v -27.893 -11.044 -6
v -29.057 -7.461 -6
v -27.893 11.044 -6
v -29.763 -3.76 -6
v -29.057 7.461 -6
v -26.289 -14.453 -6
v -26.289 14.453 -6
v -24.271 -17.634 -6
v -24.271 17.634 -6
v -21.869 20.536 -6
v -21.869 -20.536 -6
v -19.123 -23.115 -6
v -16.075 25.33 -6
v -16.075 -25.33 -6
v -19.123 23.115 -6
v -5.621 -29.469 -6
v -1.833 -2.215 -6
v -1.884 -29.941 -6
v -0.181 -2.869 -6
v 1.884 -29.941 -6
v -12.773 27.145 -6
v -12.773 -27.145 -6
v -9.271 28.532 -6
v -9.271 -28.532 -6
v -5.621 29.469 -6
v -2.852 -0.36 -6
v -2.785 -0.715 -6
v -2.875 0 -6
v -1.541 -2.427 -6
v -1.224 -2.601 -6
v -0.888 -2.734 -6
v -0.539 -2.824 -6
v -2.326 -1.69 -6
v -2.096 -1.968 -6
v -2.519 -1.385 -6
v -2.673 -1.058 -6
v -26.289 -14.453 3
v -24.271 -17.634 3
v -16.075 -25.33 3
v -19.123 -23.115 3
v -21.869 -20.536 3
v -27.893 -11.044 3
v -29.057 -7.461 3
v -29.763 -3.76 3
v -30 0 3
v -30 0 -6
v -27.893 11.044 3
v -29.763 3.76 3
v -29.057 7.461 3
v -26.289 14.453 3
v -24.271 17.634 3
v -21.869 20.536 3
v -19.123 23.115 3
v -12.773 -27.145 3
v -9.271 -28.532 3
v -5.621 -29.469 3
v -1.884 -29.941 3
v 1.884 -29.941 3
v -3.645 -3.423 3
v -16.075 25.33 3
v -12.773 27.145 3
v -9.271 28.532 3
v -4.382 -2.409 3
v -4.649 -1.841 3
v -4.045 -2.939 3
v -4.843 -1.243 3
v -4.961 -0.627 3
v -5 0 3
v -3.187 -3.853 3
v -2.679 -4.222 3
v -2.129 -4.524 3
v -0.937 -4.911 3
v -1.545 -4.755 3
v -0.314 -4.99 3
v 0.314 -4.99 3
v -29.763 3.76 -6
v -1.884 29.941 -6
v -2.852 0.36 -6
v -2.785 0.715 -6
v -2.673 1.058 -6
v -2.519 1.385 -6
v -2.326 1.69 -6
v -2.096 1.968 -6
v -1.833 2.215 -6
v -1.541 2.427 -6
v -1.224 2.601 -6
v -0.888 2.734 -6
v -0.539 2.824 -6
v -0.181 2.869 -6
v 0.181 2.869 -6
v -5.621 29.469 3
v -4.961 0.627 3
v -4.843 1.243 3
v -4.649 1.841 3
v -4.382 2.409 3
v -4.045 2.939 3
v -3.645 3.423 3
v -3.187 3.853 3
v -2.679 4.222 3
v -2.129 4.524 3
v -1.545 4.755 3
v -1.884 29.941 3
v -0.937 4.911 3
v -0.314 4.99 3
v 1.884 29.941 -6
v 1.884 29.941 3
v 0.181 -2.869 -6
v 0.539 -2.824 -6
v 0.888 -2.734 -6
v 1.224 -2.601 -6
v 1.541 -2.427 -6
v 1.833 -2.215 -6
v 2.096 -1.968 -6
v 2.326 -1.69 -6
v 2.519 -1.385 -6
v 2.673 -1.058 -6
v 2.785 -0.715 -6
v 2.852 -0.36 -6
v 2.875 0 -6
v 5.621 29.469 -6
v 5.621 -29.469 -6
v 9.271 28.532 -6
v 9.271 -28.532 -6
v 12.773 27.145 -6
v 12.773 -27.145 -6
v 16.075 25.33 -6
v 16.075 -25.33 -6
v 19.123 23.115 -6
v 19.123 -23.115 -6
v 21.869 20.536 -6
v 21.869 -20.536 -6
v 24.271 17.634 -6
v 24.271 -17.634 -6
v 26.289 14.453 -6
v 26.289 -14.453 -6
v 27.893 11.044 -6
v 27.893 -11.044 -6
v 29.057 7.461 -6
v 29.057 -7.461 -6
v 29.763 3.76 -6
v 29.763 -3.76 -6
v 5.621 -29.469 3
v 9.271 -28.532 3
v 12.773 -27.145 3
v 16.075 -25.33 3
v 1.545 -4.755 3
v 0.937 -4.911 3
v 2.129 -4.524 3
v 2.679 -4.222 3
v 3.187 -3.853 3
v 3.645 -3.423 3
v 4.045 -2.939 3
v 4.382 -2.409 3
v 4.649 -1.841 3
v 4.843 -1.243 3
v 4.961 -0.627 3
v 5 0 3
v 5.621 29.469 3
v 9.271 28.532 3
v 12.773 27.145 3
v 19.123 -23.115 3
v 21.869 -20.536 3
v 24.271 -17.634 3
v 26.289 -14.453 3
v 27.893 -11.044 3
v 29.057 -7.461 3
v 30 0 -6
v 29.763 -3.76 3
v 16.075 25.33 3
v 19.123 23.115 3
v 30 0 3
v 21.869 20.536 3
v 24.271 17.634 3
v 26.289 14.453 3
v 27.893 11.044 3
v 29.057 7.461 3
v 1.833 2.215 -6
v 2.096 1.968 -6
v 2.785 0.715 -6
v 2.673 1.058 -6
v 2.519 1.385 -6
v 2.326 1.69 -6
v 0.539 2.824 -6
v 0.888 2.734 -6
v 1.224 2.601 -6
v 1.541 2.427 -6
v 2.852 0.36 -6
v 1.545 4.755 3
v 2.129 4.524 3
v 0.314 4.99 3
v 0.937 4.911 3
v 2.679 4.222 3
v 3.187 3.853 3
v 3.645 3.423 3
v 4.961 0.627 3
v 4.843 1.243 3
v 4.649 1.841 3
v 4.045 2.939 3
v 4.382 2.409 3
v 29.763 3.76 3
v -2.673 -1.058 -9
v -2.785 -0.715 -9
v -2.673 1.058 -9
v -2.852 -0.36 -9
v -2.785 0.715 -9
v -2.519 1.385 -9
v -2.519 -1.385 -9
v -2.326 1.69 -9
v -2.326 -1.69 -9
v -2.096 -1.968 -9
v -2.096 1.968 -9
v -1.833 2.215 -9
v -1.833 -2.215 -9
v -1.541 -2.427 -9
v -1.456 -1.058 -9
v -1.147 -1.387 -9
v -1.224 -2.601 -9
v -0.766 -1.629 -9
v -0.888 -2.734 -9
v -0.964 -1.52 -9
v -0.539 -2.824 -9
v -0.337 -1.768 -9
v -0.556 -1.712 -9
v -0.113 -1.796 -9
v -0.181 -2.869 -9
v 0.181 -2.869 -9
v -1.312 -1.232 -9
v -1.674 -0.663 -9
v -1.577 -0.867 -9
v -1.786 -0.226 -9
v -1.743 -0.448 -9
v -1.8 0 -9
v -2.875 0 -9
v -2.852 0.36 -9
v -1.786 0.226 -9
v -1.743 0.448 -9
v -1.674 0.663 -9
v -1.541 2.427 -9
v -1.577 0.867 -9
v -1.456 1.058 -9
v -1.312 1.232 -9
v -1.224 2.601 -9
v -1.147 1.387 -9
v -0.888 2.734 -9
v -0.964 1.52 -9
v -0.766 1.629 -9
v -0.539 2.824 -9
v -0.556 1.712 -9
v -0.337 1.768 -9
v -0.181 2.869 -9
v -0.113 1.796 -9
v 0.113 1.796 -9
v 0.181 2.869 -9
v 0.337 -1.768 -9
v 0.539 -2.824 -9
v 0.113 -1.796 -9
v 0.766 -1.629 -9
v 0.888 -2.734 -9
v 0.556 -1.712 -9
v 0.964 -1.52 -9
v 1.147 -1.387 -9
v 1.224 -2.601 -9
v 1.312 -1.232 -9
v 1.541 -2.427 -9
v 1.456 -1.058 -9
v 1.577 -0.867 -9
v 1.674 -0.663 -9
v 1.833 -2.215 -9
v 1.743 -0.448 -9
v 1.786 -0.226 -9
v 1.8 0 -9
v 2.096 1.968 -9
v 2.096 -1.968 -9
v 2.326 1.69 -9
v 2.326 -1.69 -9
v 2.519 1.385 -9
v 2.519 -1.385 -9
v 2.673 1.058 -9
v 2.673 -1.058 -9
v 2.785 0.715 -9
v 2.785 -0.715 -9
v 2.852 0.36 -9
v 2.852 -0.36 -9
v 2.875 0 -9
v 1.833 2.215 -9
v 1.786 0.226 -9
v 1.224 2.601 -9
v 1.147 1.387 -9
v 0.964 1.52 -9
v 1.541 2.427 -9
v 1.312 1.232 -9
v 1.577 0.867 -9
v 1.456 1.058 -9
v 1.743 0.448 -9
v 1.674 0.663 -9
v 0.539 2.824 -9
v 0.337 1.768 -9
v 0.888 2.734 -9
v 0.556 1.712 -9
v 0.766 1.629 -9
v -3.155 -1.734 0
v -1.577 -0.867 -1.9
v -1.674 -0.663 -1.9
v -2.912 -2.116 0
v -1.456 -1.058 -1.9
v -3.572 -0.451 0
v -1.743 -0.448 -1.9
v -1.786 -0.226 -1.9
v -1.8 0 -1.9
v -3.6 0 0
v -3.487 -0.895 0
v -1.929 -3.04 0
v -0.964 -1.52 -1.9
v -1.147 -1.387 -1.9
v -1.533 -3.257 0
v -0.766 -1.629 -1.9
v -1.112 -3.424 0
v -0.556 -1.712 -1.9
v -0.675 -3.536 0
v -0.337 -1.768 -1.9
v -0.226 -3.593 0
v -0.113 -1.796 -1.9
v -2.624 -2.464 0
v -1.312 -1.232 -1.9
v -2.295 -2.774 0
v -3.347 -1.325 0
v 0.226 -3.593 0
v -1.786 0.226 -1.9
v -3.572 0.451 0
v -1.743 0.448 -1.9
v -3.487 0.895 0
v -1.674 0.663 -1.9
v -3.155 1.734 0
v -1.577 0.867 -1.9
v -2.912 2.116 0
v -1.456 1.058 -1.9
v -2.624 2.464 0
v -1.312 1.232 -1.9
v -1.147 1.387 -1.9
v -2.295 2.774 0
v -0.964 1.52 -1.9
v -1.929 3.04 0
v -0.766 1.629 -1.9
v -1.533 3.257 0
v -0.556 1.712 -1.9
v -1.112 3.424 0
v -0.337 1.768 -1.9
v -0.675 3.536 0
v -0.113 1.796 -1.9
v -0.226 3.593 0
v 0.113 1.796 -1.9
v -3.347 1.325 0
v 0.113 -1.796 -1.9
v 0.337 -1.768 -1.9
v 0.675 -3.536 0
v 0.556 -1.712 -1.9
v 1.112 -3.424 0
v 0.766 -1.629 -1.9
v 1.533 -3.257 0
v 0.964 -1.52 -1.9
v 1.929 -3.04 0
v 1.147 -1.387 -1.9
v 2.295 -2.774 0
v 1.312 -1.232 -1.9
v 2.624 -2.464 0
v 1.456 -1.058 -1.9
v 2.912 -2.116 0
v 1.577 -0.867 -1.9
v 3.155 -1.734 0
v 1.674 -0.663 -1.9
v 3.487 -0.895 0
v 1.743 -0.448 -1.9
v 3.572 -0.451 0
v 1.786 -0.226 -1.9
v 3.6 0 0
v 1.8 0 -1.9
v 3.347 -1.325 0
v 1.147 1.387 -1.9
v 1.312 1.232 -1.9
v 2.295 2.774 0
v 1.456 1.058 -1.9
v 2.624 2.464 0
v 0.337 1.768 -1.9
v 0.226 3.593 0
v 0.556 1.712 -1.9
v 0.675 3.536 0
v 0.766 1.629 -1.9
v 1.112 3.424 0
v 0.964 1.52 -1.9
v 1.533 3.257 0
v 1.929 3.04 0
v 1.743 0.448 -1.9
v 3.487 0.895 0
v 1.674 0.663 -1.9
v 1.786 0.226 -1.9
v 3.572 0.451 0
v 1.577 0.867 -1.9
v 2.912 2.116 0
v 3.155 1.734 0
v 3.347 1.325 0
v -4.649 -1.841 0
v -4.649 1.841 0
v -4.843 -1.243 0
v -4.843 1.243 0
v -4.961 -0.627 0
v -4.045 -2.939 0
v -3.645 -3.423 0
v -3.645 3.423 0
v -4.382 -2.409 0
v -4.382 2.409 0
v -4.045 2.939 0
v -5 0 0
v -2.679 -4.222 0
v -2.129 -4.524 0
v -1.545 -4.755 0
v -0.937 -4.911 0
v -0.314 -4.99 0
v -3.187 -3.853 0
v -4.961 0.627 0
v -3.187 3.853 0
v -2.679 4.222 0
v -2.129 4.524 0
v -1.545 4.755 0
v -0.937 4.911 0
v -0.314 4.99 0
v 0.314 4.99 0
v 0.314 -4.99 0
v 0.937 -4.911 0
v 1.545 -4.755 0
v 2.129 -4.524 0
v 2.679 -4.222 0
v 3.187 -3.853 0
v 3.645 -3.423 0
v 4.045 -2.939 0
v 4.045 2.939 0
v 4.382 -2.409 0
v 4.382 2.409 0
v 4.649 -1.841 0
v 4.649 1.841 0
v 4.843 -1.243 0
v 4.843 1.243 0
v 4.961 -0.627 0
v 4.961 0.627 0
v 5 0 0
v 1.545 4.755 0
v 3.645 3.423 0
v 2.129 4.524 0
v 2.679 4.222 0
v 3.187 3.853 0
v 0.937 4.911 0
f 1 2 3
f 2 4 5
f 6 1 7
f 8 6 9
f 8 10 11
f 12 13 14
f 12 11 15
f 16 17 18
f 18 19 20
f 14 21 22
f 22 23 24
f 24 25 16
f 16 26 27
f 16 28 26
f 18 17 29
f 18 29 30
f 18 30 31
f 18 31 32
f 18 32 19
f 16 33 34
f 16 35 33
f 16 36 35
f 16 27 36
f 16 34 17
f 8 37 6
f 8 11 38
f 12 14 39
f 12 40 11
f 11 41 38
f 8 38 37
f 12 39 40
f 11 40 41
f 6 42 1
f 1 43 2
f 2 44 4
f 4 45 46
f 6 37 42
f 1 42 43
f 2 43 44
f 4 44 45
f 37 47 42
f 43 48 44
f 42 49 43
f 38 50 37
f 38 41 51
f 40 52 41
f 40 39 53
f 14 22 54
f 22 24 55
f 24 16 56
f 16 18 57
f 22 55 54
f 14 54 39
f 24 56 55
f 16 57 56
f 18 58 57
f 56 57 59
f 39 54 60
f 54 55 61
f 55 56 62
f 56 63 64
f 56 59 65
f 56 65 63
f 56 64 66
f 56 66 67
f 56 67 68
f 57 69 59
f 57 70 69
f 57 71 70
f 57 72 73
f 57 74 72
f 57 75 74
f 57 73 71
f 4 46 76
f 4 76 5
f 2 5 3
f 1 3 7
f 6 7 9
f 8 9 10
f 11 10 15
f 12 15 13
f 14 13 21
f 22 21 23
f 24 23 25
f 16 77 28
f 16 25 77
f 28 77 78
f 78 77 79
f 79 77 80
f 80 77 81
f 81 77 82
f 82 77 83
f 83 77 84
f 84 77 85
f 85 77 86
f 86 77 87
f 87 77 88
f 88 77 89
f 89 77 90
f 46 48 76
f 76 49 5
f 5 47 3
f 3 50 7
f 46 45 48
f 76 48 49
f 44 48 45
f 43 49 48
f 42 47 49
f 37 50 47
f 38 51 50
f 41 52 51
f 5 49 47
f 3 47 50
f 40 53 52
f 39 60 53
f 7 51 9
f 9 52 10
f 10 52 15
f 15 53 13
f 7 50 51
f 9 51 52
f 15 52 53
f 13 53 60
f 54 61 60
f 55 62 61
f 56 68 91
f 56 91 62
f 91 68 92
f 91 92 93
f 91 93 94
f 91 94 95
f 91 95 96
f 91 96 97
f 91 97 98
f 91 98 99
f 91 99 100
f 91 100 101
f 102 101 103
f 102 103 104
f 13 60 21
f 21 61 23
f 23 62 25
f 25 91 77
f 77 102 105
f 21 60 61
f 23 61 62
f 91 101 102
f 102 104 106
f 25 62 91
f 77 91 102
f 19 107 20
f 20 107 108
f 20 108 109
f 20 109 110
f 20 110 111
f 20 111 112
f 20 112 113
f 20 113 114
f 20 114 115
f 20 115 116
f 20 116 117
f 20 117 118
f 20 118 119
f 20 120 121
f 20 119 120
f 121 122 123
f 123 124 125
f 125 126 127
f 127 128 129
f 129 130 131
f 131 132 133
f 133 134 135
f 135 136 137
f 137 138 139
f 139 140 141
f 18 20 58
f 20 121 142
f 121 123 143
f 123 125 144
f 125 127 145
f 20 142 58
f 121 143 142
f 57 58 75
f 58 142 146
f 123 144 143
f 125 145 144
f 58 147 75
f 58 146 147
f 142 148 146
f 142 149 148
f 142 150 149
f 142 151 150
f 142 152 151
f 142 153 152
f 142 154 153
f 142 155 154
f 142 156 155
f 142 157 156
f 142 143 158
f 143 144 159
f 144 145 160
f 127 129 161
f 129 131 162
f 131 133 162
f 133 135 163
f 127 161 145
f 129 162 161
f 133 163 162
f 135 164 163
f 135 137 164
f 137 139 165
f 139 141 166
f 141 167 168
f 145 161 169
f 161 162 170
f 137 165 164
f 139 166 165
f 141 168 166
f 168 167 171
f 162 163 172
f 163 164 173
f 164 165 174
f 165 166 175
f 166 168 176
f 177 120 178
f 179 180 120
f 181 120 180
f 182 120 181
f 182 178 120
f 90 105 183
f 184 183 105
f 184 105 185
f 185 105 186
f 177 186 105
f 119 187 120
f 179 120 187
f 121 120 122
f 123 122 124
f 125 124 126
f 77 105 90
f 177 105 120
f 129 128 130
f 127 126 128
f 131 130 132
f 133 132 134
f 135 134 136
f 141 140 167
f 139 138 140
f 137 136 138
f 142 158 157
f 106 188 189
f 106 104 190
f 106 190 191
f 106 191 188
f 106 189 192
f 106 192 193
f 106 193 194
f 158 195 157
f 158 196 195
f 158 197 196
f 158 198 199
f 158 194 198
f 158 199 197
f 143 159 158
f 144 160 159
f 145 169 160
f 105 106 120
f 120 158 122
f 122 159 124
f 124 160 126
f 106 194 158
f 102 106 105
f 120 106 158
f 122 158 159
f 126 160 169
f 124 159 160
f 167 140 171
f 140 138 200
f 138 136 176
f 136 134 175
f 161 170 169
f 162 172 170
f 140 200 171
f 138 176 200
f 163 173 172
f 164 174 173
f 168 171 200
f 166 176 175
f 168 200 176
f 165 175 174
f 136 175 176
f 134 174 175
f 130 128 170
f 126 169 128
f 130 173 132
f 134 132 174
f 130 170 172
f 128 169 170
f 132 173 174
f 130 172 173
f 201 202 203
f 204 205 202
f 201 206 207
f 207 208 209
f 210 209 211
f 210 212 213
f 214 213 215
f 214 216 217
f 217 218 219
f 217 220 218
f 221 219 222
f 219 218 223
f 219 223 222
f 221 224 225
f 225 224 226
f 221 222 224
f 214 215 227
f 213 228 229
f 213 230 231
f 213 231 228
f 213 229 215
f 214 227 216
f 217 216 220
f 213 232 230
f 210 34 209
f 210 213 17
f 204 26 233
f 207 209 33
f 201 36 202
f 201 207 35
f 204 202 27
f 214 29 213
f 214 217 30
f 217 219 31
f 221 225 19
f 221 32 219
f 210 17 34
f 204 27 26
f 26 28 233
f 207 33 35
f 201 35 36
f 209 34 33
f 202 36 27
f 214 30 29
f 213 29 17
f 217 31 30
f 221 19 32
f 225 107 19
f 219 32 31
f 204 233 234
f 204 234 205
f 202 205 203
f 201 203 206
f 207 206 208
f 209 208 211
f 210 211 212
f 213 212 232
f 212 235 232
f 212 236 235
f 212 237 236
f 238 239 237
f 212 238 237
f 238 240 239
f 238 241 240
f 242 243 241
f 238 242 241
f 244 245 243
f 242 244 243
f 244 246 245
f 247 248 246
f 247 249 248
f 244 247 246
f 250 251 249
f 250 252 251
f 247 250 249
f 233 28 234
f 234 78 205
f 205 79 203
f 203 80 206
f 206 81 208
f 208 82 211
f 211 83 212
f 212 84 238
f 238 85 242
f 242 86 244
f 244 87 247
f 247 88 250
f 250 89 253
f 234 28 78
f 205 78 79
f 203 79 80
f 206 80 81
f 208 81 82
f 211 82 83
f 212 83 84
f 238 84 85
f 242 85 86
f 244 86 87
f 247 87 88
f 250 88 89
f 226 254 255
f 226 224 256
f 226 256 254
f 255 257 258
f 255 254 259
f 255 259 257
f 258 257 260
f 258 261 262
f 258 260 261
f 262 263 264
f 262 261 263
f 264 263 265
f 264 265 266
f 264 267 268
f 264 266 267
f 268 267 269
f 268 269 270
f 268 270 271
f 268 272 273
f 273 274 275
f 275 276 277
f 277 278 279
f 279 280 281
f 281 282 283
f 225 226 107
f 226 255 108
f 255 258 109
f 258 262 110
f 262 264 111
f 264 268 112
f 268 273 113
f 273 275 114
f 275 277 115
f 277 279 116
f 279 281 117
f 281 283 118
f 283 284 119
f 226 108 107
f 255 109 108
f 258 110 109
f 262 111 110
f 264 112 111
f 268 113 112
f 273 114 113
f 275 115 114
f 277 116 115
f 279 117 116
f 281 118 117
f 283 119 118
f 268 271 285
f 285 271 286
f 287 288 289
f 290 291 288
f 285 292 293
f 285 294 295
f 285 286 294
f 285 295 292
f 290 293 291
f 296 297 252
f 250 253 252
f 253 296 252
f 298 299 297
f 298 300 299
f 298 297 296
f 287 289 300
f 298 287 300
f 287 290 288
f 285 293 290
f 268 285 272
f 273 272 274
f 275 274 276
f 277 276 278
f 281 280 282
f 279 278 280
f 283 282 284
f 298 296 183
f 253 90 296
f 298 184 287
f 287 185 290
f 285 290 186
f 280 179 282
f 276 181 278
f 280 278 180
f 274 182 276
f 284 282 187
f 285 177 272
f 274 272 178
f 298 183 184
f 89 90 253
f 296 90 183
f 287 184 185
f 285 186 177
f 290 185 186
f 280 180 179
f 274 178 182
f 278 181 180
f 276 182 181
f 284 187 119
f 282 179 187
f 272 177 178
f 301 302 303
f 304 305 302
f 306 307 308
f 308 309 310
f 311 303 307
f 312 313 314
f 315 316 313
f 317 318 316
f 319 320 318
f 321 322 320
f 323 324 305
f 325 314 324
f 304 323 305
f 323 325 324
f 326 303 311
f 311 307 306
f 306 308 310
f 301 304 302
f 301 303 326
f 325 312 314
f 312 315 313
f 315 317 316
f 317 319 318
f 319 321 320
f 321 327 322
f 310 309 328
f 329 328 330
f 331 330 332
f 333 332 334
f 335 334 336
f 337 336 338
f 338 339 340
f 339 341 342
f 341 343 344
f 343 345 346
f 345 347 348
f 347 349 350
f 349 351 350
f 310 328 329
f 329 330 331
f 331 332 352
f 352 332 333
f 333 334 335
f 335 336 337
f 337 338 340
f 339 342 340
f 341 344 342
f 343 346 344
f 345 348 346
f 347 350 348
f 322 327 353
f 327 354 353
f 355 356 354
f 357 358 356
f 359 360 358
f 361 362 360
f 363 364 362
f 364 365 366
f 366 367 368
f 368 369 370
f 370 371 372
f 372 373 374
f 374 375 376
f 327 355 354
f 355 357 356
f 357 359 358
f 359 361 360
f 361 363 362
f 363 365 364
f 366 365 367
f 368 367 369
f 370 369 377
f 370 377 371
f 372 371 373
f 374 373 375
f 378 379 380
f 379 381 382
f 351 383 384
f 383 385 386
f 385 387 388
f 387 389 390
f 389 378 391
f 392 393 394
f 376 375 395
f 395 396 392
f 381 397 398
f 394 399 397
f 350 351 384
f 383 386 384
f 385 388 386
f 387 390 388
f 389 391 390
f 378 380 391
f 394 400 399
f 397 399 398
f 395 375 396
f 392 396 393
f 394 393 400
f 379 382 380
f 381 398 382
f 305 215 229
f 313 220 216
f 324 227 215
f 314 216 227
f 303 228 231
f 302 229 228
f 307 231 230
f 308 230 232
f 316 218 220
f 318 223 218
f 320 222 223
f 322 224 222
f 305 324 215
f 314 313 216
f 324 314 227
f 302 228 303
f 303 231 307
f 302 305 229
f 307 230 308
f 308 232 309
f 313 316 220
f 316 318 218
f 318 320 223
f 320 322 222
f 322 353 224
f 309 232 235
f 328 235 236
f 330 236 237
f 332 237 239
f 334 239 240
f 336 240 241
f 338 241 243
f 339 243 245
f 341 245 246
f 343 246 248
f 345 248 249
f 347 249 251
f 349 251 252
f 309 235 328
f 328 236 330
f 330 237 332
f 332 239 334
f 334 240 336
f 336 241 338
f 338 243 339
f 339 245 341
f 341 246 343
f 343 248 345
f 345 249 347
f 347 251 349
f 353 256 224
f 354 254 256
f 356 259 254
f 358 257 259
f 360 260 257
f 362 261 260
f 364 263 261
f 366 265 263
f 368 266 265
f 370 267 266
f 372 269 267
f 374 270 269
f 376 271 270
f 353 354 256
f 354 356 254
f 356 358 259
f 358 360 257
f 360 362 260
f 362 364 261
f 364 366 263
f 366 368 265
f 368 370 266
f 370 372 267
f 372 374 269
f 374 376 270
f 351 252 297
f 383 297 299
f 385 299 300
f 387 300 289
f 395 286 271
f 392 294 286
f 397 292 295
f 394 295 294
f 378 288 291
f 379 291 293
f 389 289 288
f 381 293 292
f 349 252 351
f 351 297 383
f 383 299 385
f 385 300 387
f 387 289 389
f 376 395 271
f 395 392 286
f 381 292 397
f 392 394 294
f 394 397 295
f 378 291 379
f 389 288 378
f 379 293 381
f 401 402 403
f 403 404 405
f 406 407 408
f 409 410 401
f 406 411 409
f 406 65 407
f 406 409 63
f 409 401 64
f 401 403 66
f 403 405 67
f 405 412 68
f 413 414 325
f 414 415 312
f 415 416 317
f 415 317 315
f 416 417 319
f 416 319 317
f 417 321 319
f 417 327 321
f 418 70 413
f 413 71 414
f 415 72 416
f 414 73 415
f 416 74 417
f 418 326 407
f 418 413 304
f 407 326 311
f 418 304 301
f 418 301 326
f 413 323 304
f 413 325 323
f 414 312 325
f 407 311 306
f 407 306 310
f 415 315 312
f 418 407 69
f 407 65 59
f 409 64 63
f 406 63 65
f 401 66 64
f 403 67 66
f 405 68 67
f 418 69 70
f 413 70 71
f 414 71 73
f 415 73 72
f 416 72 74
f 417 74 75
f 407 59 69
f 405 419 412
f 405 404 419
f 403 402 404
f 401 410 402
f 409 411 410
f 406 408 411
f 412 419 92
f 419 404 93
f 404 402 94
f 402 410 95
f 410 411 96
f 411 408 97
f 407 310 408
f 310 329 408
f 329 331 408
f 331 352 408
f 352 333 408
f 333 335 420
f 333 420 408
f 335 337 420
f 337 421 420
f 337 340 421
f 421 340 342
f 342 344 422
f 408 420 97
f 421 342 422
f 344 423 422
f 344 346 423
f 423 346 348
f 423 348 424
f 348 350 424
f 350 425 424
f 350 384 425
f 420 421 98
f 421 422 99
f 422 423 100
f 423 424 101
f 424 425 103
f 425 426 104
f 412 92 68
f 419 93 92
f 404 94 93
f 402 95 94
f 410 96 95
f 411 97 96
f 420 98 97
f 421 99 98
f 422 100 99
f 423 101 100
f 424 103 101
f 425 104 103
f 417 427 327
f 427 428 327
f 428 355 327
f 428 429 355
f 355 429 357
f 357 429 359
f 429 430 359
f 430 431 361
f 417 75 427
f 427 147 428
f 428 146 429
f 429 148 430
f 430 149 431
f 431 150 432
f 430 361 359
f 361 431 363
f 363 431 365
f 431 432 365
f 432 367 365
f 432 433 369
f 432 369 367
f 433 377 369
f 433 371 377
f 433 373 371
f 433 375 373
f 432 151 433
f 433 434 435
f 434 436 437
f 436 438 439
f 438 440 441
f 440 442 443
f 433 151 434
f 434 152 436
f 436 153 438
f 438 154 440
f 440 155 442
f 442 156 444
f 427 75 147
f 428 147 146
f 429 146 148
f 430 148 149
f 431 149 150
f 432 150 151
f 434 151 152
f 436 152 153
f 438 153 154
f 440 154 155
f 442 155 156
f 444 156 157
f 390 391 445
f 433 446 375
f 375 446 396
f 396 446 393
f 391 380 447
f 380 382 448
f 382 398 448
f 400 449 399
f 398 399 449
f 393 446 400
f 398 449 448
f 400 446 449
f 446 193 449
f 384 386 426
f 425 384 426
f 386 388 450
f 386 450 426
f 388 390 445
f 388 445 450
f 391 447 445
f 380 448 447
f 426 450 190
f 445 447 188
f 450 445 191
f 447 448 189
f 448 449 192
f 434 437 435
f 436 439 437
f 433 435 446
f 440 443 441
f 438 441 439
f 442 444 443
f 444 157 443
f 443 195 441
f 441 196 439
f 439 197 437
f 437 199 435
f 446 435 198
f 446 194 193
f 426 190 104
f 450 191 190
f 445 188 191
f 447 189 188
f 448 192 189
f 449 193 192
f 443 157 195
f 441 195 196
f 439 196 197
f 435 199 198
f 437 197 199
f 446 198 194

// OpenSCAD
$fn = 50;

difference() {
	union() {
		translate(v = [0, 0, -6.0]) {
			cylinder(h = 9, r = 30.0);
		}
		#translate(v = [0, 0, -9.0]) {
			cylinder(h = 9, r = 2.875);
		}
	}
	union() {
		translate(v = [0, 0, 0]) {
			rotate(a = [0, 0, 0]) {
				difference() {
					union() {
						translate(v = [0, 0, -9.0]) {
							cylinder(h = 9, r = 1.5);
						}
						translate(v = [0, 0, -1.9]) {
							cylinder(h = 1.9, r1 = 1.8, r2 = 3.6);
						}
						translate(v = [0, 0, -9.0]) {
							cylinder(h = 9, r = 1.8);
						}
						translate(v = [0, 0, -9.0]) {
							cylinder(h = 9, r = 1.5);
						}
					}
					union();
				}
			}
		}
		#cylinder(h = 3, r = 5.0);
	}
}
